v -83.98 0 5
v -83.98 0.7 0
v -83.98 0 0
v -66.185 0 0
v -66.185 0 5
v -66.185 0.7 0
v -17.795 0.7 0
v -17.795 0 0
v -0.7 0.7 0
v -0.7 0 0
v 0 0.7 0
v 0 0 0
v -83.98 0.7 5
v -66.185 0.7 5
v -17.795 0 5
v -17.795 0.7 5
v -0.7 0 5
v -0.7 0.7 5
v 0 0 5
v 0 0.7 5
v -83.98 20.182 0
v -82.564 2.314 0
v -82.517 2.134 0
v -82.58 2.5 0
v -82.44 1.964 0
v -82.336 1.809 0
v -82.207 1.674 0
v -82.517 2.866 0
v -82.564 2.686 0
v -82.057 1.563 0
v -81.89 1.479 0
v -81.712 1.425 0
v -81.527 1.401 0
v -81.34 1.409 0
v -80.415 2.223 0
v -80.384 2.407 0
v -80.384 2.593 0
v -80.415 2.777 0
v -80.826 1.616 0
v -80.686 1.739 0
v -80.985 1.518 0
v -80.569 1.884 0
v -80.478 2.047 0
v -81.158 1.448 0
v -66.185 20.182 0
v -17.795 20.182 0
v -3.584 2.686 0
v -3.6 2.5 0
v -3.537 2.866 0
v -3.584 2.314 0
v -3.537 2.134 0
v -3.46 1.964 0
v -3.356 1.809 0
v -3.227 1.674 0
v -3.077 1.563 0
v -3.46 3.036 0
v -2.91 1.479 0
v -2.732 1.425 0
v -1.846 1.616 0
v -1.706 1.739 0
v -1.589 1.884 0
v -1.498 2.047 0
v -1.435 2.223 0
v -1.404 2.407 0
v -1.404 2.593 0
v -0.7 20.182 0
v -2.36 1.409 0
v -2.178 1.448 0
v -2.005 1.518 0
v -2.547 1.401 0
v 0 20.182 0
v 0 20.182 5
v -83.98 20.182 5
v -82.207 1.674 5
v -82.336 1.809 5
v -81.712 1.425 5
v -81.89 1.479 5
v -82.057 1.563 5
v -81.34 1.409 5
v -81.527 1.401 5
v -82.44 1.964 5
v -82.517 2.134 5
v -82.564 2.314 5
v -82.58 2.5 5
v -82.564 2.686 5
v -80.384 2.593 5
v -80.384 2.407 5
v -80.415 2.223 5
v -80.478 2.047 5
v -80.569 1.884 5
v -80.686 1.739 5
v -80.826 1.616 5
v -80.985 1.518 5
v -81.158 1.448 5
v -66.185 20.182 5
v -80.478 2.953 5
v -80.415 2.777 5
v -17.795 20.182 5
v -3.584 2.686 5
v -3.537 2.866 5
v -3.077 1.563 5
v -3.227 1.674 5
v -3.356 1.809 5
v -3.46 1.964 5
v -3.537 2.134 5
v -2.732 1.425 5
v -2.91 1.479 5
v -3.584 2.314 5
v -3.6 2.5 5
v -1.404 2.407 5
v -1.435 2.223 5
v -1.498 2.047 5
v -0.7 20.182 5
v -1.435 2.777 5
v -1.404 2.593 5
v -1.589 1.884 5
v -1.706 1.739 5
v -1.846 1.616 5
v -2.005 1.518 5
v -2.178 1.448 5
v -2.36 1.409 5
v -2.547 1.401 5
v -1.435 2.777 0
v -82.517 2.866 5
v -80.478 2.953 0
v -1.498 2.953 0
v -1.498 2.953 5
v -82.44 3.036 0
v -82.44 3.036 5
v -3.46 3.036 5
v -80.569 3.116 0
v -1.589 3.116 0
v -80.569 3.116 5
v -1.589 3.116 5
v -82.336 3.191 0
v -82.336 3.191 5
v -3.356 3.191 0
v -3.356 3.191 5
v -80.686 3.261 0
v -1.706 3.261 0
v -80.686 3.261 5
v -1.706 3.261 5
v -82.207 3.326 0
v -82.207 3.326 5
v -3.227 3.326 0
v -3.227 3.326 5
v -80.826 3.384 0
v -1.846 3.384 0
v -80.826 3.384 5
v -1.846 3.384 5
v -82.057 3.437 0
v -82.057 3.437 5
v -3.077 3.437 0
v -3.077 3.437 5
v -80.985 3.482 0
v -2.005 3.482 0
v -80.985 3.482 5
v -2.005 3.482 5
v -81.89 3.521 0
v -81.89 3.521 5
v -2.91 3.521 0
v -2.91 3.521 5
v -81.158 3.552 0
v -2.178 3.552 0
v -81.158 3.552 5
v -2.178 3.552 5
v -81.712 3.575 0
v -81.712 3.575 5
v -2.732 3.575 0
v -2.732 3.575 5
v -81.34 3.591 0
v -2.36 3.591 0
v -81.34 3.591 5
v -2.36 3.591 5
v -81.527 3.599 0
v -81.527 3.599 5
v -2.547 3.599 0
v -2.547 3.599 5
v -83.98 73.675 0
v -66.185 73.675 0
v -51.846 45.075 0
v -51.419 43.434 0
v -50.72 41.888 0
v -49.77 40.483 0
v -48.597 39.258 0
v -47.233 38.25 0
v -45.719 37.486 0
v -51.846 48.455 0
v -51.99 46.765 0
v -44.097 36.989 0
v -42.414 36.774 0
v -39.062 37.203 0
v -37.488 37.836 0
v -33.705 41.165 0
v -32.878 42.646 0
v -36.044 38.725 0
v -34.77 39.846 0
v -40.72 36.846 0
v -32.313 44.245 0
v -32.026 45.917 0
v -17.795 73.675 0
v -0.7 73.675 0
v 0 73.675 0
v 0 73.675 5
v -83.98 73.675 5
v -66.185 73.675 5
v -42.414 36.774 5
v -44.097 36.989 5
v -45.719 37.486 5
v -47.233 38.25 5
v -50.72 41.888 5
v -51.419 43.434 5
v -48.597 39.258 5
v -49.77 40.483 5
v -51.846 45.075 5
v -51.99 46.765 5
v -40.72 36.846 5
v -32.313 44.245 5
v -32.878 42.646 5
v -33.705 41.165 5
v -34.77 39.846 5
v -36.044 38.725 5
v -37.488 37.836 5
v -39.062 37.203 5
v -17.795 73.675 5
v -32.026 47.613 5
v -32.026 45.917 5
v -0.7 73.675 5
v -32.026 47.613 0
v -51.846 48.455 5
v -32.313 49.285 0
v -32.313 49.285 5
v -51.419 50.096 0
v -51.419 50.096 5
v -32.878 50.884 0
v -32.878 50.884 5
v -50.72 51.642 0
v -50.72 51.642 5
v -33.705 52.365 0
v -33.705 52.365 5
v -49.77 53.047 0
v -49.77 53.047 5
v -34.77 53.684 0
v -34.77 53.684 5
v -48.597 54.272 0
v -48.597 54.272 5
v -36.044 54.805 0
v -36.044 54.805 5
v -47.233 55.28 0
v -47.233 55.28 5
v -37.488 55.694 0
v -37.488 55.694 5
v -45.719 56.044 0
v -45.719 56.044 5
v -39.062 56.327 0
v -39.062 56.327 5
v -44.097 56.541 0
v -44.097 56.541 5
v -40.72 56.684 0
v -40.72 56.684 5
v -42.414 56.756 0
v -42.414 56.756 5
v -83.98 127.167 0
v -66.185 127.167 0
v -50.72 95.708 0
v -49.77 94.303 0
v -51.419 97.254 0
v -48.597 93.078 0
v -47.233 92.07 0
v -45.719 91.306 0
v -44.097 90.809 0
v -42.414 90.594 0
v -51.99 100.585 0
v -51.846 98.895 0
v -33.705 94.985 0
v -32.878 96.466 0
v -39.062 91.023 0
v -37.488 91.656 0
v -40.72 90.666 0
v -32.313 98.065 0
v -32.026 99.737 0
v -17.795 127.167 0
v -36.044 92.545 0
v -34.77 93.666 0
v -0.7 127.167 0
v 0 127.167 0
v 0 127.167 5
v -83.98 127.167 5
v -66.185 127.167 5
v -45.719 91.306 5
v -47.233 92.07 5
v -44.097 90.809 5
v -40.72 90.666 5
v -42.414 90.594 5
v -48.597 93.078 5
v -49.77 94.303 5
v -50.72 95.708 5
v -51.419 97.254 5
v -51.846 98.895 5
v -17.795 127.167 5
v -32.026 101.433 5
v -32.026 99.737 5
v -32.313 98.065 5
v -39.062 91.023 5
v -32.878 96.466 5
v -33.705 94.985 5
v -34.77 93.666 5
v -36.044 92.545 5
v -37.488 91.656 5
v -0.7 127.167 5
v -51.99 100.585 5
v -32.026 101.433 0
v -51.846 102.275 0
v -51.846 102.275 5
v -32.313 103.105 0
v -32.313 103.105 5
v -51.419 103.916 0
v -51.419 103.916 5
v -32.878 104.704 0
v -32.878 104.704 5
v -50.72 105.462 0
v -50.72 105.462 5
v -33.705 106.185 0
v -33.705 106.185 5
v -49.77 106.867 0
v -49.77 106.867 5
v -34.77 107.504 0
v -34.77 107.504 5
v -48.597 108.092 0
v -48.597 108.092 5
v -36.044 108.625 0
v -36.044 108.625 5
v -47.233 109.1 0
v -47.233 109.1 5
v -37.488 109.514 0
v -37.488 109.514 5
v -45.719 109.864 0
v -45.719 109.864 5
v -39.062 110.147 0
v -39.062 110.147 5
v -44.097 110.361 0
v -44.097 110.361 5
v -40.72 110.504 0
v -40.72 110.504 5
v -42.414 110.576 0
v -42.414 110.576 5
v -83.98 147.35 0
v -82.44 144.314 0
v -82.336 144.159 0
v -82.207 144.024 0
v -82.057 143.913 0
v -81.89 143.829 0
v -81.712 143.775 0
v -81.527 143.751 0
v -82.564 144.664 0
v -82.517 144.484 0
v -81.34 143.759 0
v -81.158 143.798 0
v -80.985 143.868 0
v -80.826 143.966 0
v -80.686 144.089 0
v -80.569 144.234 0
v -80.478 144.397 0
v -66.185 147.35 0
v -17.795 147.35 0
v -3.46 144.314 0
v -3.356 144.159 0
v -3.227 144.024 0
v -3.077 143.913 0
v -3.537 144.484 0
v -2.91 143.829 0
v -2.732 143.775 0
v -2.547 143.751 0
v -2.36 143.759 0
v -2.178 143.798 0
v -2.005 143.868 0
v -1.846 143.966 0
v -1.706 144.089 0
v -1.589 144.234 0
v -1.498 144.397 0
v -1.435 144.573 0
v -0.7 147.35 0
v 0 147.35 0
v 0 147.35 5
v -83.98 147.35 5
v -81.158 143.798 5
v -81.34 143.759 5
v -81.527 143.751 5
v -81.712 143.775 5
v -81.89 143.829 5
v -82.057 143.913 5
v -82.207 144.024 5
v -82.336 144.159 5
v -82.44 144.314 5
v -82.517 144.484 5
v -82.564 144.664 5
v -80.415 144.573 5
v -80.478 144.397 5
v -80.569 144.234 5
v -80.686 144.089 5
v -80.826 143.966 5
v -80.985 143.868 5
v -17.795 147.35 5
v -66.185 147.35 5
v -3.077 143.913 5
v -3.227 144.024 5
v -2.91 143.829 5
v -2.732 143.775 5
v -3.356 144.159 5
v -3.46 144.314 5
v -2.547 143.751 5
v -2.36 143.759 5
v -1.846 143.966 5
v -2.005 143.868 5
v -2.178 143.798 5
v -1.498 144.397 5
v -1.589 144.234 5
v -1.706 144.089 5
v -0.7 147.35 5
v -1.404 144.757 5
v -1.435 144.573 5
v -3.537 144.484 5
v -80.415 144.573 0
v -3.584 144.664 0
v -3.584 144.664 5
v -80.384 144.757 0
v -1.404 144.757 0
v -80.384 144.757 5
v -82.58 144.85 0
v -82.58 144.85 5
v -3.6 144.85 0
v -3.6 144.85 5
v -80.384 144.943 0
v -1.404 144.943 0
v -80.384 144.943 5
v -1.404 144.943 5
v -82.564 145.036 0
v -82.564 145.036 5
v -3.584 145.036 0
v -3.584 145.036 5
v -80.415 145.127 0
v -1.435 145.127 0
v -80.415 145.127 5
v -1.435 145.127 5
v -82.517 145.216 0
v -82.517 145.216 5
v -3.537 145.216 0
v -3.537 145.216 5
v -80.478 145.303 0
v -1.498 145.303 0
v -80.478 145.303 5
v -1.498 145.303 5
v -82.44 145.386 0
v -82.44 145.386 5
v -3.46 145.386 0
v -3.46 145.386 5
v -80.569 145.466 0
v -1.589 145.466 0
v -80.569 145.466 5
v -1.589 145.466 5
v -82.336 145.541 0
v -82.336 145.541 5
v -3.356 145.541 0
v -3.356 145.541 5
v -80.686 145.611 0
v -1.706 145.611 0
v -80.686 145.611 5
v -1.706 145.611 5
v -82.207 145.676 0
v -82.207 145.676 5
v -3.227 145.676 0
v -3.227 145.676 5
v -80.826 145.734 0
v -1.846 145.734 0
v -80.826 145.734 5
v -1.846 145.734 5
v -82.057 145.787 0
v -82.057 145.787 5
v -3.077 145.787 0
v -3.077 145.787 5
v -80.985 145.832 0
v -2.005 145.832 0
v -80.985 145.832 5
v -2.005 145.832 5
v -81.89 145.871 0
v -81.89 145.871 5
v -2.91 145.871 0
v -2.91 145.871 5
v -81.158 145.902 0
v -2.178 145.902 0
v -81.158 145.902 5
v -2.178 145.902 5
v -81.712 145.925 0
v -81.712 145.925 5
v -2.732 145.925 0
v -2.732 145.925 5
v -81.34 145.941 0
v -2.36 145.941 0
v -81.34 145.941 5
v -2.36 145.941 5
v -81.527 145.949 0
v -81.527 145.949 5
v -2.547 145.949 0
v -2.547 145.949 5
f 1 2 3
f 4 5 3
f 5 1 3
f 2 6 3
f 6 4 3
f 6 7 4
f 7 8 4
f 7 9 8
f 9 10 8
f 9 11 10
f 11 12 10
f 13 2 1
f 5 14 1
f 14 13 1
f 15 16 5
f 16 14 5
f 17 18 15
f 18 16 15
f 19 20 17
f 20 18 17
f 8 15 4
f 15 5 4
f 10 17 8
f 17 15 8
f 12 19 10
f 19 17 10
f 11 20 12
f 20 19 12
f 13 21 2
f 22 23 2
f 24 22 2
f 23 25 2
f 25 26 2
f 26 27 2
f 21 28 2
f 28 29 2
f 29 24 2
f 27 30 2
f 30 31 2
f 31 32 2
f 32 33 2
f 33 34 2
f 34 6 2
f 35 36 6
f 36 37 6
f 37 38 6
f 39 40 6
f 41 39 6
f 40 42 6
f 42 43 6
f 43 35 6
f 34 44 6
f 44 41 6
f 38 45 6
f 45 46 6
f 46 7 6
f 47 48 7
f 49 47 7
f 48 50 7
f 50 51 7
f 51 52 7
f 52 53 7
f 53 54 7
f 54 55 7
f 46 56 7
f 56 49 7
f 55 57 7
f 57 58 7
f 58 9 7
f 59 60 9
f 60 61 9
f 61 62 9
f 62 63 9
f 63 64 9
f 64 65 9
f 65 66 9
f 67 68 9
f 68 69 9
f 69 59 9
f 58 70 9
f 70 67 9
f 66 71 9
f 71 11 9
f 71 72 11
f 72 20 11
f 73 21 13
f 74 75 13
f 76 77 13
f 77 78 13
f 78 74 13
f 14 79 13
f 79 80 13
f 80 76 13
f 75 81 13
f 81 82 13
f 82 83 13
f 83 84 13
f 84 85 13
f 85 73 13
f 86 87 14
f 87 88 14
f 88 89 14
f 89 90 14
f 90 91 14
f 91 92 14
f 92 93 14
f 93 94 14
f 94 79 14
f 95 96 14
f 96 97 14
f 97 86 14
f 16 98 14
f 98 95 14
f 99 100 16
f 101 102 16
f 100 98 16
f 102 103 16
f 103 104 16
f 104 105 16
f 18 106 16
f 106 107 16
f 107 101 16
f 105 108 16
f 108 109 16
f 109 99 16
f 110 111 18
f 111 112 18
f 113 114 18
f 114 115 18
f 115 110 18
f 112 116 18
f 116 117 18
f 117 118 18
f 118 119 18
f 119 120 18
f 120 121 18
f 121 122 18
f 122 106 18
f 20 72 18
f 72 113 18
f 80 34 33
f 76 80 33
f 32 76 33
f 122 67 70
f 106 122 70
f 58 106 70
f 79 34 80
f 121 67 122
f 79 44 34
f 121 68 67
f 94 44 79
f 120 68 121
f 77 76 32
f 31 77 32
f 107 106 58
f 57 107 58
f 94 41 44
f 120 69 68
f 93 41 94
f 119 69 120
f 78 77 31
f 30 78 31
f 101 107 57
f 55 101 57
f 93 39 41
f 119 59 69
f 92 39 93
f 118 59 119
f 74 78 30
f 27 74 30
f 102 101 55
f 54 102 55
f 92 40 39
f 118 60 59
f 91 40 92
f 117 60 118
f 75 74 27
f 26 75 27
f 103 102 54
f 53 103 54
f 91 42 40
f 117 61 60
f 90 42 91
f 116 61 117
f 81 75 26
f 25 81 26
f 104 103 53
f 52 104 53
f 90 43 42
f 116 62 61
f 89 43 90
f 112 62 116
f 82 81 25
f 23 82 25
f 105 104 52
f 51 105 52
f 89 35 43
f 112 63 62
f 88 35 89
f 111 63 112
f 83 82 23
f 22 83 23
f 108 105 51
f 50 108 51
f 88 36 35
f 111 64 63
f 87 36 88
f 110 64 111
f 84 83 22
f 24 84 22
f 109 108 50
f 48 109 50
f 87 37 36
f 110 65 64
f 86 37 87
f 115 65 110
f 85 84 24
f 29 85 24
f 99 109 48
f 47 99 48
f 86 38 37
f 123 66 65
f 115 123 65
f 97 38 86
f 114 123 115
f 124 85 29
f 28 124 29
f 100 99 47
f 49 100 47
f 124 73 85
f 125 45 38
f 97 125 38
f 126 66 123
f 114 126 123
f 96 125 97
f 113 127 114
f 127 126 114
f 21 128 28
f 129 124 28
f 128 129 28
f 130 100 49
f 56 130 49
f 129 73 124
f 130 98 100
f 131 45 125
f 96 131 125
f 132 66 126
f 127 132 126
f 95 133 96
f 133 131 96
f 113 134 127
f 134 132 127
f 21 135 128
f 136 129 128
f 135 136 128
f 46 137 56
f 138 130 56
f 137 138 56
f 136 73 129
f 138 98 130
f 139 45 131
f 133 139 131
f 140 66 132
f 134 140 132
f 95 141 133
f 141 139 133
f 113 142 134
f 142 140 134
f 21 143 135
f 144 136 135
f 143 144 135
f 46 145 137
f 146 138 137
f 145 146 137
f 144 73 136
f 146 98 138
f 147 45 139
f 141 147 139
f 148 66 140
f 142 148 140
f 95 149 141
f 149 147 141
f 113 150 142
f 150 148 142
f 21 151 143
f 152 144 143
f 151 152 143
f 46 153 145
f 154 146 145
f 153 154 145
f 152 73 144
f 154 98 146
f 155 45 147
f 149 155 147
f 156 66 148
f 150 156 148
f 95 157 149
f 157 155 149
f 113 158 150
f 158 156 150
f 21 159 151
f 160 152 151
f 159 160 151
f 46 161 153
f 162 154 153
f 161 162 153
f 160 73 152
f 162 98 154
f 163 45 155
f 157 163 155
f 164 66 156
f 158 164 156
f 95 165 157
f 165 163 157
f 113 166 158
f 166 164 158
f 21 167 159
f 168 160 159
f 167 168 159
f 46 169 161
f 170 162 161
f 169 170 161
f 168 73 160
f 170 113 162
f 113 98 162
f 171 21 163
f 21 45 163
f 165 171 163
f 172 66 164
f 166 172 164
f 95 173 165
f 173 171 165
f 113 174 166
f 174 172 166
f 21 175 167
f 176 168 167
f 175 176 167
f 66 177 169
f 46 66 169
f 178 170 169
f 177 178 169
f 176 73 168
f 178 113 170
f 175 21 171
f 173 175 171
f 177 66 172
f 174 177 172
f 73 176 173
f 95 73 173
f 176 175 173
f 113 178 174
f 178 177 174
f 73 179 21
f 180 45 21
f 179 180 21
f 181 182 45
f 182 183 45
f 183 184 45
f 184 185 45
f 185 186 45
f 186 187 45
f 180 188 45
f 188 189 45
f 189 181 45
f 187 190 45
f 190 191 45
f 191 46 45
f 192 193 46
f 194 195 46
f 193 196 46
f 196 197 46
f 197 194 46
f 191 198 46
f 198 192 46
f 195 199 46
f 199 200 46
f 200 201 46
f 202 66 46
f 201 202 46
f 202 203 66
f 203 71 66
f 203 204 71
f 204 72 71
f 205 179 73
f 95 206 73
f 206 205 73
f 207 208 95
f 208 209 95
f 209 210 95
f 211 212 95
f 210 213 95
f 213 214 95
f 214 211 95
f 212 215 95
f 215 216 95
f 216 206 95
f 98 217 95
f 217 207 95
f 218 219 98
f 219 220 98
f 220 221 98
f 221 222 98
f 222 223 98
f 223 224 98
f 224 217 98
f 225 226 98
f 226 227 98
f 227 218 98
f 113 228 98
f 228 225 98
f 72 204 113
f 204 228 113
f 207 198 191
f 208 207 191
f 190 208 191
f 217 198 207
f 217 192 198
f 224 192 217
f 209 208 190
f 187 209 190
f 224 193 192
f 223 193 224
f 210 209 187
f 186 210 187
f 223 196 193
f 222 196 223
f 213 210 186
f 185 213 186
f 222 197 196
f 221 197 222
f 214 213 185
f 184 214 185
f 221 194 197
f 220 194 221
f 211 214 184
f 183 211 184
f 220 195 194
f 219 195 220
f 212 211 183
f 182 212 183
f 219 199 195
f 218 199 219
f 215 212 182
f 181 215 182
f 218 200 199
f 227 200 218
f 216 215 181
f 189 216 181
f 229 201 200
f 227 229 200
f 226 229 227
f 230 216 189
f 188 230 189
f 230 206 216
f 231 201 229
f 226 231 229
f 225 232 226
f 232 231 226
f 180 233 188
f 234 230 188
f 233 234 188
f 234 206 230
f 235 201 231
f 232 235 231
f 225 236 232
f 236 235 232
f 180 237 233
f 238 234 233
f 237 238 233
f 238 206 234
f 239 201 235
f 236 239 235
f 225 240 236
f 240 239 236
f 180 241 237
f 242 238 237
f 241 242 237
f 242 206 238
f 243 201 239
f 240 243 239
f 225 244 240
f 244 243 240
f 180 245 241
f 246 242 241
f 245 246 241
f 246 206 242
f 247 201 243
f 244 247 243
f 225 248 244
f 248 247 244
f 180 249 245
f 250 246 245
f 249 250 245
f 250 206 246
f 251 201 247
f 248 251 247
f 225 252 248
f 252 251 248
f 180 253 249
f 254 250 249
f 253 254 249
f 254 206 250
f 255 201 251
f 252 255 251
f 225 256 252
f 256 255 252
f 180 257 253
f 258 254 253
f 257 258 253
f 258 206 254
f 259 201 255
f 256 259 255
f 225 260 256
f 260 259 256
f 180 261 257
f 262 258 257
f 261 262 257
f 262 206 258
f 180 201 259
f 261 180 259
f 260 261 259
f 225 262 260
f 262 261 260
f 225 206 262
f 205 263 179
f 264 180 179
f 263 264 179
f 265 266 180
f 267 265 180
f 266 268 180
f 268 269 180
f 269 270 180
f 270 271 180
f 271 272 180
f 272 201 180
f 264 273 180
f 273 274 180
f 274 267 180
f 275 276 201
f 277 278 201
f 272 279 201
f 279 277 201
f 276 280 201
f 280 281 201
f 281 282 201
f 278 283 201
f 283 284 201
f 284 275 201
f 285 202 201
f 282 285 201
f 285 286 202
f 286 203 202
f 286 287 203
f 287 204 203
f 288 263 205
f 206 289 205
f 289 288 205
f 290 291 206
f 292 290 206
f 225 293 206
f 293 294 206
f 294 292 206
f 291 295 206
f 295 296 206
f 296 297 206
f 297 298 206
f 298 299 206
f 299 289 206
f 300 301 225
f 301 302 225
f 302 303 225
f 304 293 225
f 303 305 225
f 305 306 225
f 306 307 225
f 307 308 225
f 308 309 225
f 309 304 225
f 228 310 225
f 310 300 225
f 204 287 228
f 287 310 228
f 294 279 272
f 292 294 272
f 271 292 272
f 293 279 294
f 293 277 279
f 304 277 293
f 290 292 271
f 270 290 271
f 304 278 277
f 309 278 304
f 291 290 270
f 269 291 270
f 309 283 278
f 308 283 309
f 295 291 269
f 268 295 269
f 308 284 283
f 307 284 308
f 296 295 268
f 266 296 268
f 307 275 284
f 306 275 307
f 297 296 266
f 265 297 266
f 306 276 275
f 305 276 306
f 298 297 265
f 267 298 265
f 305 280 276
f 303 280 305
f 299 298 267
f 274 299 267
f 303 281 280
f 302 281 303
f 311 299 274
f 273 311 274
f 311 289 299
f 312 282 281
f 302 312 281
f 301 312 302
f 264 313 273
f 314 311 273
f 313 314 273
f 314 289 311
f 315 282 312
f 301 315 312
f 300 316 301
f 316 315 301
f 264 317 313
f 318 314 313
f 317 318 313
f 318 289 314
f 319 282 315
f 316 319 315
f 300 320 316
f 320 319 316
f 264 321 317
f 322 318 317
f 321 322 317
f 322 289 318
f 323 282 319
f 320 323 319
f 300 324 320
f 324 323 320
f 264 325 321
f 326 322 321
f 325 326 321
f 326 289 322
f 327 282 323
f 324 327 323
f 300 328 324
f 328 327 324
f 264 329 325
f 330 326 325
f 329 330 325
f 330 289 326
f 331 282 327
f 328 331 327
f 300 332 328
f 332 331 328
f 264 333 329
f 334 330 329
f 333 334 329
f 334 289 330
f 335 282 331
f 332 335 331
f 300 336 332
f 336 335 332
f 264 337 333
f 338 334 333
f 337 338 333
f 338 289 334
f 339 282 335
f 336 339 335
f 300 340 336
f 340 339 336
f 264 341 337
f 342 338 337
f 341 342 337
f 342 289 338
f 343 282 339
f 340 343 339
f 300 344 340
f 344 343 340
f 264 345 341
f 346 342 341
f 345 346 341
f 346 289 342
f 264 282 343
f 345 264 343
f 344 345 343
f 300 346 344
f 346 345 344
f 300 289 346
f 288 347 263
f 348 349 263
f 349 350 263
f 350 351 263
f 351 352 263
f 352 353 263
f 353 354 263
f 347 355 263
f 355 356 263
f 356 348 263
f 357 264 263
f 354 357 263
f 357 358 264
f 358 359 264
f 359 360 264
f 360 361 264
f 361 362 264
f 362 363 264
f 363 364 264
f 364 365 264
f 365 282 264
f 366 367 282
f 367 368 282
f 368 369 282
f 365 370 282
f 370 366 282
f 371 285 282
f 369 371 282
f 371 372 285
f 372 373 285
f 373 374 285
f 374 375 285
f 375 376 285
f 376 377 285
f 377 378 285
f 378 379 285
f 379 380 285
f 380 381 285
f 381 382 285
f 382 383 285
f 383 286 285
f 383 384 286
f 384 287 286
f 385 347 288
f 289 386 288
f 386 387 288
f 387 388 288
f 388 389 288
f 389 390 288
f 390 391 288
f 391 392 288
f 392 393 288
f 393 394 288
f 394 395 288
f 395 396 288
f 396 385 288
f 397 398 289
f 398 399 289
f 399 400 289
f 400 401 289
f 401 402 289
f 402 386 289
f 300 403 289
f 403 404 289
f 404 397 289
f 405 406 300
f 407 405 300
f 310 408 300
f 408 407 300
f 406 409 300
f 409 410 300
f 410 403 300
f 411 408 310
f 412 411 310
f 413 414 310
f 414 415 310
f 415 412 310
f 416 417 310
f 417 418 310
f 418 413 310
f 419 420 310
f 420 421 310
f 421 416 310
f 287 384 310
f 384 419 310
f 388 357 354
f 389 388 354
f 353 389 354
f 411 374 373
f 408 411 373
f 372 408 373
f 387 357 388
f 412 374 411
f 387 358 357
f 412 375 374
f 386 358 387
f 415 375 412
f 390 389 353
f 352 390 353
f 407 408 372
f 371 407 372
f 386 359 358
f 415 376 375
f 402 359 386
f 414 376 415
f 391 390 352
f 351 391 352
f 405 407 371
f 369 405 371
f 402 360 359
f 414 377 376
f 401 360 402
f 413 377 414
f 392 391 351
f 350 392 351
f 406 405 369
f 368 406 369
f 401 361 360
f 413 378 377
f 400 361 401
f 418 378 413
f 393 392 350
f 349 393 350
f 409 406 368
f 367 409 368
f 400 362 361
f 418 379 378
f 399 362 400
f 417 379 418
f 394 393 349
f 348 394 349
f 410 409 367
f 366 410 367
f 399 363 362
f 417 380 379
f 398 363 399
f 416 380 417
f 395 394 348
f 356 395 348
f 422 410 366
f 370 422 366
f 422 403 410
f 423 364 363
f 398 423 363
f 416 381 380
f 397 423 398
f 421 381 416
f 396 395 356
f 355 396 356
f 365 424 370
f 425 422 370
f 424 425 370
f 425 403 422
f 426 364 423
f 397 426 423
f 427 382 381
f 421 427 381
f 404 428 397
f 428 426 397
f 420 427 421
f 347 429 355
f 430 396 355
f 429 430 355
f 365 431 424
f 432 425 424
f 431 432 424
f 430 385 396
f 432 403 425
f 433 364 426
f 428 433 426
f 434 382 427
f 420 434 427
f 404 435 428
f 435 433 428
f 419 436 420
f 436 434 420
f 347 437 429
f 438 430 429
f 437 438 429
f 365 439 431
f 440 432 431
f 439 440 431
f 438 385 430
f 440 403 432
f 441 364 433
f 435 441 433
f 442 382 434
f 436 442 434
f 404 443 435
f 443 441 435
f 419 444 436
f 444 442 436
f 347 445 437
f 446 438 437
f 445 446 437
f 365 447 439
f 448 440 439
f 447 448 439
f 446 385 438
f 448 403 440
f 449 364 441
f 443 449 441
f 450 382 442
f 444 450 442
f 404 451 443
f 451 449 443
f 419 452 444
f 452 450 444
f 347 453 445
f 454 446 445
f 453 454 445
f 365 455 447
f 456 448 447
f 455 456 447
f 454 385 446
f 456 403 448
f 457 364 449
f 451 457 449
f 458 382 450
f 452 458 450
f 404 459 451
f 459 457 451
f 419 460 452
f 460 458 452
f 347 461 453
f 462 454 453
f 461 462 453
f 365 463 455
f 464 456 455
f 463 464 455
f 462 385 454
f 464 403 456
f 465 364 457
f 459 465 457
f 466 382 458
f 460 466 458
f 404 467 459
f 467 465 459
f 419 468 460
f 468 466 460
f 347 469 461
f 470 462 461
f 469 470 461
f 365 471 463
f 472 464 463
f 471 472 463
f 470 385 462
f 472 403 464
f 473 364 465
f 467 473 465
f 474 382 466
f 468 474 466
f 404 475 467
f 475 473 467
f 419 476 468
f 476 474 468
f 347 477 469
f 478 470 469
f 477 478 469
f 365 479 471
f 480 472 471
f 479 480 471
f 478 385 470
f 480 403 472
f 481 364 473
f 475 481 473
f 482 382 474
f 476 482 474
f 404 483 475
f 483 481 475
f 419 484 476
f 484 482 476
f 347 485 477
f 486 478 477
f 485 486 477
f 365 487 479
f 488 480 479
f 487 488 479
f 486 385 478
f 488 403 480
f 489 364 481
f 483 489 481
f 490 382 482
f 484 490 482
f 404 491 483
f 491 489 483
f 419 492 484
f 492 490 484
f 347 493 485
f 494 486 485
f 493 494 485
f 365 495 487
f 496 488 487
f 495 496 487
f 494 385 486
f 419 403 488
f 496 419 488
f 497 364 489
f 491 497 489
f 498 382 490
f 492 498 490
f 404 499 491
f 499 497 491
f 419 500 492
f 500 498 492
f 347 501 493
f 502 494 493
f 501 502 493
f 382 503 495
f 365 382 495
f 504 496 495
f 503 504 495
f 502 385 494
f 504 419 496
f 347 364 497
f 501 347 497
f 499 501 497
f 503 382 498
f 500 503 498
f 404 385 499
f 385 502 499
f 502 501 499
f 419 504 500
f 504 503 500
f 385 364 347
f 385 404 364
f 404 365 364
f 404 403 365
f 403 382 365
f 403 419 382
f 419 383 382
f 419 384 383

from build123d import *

# Parameters (mm, degrees)
SKETCH1_W                = 83.98
SKETCH1_H                = 147.35
PLATFORM_THICKNESS_DEPTH = 5
SKETCH2_R                = 10
IO_HOLE_1_DEPTH          = 170.675168778
SKETCH3_R                = 1.1
MOUNTING_HOLES_DEPTH     = 170.675168778


with BuildPart() as part:
    # Sketch1 → platform_thickness (new body)
    with BuildSketch(Plane.XY):
        with Locations((-41.99, 73.675)):
            Rectangle(SKETCH1_W, SKETCH1_H)
    extrude(amount=PLATFORM_THICKNESS_DEPTH)

    # Sketch2 → io_hole_1 (cut, through all)
    with BuildSketch(Plane(origin=(0, 0, 0), x_dir=(-1, 0, 0), z_dir=(0, 0, -1))):
        with Locations((41.99, 100.585)):
            Circle(SKETCH2_R)
        with Locations((41.99, 46.765)):
            Circle(SKETCH2_R)
    extrude(amount=-IO_HOLE_1_DEPTH, mode=Mode.SUBTRACT)

    # Sketch3 → mounting_holes (cut, through all)
    with BuildSketch(Plane(origin=(0, 0, 0), x_dir=(-1, 0, 0), z_dir=(0, 0, -1))):
        with Locations((2.5, 144.85)):
            Circle(SKETCH3_R)
        with Locations((81.48, 144.85)):
            Circle(SKETCH3_R)
        with Locations((81.48, 2.5)):
            Circle(SKETCH3_R)
        with Locations((2.5, 2.5)):
            Circle(SKETCH3_R)
    extrude(amount=-MOUNTING_HOLES_DEPTH, mode=Mode.SUBTRACT)


solid = part.part
